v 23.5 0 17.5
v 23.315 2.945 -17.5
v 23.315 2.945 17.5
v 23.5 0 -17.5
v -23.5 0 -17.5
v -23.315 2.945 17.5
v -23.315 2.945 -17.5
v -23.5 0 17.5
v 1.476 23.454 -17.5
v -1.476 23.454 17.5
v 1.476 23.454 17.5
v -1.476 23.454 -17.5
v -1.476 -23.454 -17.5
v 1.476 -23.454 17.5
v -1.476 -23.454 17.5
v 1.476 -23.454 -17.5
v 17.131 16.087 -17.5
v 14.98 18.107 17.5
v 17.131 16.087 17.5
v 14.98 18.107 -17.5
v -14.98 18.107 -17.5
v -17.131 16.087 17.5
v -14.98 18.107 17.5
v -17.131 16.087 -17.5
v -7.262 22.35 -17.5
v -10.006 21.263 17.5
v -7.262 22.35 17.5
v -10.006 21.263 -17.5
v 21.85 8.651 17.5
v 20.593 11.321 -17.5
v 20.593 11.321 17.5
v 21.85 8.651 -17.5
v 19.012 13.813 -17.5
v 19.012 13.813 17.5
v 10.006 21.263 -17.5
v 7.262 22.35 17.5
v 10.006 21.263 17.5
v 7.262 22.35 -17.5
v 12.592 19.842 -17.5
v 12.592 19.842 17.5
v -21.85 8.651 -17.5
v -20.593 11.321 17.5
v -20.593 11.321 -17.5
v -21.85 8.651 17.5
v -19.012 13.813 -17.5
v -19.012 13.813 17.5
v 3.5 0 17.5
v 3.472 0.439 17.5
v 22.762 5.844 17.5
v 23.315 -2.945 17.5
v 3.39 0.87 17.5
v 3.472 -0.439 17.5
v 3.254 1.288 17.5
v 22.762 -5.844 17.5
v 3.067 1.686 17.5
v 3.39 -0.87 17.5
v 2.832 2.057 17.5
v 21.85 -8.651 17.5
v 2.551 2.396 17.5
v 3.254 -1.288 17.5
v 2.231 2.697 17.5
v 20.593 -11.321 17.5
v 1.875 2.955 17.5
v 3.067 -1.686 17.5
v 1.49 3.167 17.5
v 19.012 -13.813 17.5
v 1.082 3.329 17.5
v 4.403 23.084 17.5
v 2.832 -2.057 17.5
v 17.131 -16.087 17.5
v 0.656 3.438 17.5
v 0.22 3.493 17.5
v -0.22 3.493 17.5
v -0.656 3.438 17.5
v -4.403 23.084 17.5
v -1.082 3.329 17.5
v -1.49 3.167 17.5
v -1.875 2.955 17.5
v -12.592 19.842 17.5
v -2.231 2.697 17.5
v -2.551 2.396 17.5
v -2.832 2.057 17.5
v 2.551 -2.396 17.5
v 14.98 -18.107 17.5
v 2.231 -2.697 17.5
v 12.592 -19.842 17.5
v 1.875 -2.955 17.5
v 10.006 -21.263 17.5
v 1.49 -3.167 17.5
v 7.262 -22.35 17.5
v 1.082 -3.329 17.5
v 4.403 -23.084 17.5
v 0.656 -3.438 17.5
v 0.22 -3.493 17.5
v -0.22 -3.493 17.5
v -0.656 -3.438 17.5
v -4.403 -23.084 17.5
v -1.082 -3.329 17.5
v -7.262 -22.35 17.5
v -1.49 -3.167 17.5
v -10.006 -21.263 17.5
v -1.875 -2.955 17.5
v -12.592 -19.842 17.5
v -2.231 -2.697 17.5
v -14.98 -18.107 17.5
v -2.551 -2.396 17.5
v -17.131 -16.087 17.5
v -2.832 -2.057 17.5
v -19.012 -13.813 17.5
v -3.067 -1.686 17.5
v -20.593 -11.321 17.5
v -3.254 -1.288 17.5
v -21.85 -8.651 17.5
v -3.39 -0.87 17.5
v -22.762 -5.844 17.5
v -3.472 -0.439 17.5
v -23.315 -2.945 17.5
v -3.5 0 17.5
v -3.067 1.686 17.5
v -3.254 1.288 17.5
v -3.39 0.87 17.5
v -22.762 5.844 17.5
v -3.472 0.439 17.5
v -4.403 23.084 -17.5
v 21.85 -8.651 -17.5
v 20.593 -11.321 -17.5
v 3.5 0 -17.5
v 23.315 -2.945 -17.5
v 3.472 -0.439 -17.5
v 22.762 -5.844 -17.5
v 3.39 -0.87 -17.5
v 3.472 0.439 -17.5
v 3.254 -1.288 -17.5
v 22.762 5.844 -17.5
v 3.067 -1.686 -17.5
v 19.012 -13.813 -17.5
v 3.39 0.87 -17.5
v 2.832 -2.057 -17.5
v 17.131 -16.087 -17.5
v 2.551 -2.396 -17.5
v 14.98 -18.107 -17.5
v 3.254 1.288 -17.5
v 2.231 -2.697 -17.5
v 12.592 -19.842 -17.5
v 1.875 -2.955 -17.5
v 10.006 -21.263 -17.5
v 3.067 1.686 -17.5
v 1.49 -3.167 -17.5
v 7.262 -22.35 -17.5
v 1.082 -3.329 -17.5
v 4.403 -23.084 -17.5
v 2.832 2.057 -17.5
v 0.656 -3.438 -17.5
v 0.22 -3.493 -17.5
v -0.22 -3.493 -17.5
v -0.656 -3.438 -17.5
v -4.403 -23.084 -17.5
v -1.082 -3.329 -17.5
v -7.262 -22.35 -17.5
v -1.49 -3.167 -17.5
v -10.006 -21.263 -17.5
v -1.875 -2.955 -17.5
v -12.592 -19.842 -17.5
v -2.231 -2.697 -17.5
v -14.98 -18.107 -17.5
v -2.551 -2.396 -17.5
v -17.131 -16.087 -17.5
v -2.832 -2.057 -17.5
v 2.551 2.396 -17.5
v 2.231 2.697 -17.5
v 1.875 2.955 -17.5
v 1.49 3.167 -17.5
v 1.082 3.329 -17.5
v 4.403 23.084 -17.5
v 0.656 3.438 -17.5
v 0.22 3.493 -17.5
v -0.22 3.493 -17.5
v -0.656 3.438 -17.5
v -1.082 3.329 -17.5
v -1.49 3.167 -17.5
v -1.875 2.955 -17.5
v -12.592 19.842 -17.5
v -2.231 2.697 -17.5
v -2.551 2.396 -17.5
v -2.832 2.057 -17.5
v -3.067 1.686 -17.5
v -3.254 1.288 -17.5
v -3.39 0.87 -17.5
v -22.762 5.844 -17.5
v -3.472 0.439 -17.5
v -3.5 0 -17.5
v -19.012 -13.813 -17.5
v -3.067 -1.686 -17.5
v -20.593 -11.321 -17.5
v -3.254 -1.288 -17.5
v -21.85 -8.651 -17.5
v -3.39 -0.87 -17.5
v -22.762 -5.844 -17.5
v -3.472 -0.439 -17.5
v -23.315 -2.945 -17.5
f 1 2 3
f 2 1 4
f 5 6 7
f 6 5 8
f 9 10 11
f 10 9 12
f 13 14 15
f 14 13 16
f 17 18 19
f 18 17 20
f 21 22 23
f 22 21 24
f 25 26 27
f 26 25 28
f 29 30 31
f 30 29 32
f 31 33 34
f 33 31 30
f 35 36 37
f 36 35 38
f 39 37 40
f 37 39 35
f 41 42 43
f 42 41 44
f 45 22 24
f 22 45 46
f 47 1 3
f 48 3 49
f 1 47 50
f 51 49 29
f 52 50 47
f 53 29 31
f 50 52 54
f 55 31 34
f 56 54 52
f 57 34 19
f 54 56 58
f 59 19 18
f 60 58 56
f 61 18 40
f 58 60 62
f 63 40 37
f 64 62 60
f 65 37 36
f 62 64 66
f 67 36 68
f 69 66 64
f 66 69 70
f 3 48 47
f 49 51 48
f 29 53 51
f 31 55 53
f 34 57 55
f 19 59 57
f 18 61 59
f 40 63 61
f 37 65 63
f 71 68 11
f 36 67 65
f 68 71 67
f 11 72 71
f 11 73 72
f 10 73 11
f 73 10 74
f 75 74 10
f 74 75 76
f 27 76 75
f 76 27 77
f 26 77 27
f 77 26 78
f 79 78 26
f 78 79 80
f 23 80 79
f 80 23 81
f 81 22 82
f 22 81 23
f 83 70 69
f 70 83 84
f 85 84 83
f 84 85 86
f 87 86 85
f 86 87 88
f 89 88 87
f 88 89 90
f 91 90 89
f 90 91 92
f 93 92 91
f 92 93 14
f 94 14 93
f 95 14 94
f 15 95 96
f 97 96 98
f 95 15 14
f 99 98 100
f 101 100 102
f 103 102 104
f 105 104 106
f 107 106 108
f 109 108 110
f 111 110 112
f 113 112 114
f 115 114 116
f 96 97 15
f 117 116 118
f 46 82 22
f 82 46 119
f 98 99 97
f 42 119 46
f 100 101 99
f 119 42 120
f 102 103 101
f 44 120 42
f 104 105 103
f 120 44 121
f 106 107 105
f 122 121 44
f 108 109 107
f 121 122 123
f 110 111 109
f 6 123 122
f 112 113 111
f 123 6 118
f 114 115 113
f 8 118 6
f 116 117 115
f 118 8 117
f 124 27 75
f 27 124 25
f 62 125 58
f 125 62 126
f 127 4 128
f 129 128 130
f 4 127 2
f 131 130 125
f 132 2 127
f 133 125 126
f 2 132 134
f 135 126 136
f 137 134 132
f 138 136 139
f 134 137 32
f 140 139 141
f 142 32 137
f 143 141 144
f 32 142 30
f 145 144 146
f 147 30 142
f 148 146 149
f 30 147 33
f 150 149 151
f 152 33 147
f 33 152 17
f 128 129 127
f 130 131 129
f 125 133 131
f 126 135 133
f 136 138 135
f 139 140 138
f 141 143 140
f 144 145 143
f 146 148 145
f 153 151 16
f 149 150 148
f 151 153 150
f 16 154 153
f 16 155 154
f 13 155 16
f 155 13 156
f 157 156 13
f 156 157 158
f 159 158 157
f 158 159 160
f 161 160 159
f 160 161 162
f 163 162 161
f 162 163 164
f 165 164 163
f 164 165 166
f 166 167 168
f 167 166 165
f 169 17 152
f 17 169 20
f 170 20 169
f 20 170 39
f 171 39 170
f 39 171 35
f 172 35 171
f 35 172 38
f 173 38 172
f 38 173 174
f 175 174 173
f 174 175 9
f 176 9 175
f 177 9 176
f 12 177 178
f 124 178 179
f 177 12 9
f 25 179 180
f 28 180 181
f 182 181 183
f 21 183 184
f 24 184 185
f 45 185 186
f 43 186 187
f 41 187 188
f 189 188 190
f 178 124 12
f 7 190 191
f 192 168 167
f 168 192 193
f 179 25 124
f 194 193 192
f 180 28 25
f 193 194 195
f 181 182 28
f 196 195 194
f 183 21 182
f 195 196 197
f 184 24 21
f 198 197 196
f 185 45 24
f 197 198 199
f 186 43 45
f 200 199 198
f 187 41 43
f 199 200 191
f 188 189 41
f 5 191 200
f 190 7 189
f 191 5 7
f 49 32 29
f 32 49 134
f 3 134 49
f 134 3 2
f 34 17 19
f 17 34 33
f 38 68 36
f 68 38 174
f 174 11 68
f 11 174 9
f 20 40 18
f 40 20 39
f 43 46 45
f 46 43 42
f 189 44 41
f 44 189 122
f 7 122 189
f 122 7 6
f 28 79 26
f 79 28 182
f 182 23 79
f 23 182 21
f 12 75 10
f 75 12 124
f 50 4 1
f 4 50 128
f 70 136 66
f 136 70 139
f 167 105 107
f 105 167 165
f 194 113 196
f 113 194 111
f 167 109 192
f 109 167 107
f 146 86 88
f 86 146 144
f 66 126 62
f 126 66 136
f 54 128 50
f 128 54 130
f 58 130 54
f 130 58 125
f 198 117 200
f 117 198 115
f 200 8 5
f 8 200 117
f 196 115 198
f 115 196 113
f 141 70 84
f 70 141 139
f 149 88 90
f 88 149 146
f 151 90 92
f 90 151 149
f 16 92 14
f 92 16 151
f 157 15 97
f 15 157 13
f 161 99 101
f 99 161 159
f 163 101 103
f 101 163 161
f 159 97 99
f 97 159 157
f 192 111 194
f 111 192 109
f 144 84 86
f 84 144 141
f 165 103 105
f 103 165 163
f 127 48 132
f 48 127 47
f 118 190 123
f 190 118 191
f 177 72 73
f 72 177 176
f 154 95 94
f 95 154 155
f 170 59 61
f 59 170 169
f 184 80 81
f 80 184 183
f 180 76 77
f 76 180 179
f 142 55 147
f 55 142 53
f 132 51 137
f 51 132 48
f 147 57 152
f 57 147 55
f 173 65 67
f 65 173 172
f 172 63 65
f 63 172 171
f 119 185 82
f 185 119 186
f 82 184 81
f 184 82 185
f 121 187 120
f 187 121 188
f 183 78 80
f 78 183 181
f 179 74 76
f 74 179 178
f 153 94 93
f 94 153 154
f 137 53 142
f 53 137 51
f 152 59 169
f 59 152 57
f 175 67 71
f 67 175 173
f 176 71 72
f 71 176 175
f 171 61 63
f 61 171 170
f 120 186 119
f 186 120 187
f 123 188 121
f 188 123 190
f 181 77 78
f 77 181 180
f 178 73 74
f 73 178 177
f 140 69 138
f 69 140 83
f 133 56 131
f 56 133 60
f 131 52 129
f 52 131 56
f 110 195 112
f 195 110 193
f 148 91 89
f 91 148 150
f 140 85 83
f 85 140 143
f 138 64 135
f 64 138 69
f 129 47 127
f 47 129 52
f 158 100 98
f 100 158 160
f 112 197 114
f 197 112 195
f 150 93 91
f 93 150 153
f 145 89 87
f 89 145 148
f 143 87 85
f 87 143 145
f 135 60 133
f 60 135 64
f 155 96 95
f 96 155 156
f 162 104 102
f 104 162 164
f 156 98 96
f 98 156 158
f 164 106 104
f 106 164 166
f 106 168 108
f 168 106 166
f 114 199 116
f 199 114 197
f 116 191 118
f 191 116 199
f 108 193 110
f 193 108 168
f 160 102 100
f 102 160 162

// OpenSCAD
$fn = 50;


difference() {
	union() {
		translate(v = [0, 0, -17.5000000000]) {
			cylinder(h = 35, r = 23.5000000000);
		}
	}
	union() {
		translate(v = [0, 0, -100.0000000000]) {
			cylinder(h = 200, r = 3.5000000000);
		}
	}
}
